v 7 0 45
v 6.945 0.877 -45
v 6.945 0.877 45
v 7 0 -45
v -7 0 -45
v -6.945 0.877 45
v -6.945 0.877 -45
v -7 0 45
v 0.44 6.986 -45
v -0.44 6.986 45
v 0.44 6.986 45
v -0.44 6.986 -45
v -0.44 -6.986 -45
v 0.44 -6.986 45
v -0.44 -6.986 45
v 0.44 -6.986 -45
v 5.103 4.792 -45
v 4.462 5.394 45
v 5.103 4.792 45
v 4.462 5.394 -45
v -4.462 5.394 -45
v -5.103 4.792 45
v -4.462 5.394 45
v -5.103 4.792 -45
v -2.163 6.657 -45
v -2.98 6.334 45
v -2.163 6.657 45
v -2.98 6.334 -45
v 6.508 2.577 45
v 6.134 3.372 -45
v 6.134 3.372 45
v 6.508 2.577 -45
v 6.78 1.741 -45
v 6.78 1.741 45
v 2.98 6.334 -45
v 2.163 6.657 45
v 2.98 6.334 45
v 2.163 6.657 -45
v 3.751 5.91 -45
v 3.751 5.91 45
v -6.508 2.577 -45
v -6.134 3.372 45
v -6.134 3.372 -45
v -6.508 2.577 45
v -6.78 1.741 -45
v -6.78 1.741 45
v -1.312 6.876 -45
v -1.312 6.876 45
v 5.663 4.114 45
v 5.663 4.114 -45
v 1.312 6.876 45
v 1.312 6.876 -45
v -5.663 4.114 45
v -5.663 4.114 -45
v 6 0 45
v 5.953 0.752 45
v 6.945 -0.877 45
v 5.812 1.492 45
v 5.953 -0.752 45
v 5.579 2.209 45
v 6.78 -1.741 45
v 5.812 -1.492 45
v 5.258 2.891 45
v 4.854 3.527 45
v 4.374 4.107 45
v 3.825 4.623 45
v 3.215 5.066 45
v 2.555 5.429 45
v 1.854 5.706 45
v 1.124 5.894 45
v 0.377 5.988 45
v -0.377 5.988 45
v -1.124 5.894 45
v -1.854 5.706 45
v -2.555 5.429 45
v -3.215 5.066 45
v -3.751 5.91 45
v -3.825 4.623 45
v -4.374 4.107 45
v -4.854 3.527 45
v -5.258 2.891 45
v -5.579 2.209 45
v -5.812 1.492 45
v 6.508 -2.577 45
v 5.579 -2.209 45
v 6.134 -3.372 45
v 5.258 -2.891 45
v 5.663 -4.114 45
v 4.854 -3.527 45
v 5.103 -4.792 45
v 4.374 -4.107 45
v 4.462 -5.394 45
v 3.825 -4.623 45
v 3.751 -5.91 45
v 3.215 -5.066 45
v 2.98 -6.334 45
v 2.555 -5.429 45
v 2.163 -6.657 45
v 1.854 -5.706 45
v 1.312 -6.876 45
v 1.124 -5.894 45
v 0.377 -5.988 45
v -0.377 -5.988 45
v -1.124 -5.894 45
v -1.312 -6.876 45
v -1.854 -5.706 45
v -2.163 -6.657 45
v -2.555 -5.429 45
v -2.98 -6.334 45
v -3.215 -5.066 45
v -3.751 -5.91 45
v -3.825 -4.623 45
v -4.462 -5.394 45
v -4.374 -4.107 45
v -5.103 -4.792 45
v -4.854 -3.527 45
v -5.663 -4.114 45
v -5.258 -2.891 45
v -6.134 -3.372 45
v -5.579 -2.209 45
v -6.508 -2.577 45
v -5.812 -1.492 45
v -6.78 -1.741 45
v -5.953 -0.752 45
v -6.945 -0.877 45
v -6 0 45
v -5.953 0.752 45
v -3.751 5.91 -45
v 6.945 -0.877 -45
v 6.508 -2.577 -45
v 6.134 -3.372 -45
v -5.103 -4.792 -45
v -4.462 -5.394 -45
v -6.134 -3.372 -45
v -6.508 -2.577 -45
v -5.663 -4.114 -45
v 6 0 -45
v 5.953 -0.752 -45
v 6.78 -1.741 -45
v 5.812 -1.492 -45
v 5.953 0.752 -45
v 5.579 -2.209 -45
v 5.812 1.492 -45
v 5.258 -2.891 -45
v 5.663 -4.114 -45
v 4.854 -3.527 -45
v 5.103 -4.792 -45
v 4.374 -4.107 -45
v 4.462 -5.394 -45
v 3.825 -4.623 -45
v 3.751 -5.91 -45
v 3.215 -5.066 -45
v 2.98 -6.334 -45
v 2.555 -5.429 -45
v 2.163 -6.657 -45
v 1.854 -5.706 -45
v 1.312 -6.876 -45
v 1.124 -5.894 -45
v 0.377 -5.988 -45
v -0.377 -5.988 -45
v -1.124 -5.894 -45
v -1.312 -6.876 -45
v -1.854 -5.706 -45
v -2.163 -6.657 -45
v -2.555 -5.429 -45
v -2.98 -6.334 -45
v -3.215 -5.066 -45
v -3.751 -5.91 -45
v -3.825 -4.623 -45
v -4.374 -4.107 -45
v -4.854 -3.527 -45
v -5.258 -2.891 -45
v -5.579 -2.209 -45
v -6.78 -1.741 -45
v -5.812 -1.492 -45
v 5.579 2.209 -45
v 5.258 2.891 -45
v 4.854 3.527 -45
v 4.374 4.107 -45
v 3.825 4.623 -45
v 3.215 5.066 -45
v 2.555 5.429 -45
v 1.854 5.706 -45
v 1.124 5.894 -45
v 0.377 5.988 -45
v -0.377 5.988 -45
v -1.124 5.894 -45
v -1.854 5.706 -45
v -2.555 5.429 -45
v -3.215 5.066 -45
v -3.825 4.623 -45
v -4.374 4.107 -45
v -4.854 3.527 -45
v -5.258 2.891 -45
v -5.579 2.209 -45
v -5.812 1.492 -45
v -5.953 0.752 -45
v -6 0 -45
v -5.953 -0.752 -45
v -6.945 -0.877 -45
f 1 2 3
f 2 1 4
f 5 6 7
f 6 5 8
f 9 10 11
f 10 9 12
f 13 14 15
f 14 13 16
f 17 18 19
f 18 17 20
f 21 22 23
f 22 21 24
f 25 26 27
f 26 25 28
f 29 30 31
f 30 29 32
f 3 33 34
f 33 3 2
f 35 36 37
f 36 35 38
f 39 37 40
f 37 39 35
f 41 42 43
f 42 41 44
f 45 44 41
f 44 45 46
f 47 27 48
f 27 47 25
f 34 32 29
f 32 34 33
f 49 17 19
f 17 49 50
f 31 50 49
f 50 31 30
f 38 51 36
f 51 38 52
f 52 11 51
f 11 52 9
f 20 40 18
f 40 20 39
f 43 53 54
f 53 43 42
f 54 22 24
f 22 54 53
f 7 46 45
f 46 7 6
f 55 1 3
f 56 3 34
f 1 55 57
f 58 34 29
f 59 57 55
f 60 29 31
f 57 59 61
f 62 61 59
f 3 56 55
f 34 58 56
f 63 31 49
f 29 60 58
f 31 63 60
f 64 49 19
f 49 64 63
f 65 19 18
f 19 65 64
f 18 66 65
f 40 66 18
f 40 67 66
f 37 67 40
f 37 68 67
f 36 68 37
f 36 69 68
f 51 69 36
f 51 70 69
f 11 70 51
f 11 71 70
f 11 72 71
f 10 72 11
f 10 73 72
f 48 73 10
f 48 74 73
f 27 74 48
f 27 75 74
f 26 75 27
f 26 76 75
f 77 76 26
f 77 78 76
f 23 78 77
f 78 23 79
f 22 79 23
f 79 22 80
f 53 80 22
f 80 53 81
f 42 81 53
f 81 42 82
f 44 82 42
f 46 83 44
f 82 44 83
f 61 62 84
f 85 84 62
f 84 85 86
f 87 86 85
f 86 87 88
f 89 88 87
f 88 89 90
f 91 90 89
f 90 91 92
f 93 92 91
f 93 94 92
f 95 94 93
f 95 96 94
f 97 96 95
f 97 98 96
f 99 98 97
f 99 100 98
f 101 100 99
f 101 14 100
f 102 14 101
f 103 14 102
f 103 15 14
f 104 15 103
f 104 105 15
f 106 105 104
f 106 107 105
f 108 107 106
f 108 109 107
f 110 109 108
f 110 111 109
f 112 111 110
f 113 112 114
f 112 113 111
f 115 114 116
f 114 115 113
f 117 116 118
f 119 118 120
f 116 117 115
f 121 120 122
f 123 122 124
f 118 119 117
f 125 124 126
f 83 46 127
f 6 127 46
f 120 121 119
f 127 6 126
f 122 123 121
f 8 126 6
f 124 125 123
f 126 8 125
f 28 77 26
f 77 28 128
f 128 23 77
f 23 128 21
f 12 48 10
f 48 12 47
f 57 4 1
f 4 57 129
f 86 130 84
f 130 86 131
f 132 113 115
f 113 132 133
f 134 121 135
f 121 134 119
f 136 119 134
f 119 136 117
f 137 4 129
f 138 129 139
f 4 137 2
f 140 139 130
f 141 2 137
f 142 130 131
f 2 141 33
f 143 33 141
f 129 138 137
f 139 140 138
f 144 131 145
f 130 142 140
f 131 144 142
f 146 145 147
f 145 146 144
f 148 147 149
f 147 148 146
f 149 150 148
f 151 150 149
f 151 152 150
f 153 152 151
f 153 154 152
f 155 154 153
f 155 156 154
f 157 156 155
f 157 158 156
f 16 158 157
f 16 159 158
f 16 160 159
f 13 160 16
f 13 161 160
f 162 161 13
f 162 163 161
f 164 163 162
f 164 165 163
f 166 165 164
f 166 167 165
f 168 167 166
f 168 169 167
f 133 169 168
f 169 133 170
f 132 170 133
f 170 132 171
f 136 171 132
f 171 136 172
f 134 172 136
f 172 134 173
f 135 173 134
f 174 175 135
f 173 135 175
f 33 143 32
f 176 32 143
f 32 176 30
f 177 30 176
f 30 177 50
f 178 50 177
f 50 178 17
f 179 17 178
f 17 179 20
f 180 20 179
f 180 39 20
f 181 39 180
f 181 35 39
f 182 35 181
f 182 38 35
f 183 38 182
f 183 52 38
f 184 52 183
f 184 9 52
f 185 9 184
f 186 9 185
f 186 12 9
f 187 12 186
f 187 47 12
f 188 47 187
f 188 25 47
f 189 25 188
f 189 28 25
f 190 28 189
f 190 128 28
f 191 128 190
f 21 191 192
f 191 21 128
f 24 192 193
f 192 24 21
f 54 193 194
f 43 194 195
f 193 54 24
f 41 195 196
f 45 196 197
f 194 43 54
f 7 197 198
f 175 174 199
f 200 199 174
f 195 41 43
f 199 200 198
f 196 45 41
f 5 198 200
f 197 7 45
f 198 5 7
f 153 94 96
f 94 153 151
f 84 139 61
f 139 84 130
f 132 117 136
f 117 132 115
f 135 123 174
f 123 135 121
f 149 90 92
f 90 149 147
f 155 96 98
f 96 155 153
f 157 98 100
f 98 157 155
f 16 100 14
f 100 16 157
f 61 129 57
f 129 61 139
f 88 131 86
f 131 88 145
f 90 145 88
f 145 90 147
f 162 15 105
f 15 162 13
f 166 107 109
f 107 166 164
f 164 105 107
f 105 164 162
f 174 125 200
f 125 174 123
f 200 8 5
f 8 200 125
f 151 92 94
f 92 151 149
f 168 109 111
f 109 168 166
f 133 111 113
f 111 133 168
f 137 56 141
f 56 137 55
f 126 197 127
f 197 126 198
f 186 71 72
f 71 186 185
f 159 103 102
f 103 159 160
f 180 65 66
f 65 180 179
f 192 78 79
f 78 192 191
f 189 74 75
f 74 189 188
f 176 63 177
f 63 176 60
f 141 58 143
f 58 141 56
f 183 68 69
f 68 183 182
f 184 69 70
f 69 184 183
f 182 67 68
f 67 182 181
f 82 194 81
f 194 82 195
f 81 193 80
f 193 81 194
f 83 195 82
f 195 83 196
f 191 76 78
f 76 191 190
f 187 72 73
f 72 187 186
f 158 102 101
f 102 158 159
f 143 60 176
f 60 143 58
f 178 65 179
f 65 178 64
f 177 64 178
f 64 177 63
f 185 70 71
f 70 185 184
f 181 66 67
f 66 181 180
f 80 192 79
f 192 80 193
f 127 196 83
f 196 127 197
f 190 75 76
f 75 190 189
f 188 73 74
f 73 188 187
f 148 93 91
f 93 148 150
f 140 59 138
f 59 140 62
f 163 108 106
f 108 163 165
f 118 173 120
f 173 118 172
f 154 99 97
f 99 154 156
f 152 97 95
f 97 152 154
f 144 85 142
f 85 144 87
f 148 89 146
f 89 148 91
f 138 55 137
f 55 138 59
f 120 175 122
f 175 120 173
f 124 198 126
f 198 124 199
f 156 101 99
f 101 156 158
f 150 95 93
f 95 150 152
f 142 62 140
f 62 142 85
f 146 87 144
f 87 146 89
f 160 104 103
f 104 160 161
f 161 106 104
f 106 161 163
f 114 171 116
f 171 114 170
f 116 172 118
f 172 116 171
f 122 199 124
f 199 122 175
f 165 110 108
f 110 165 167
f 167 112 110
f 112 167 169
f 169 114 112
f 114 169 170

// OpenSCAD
$fn = 50;


difference() {
	union() {
		translate(v = [0, 0, -45.0000000000]) {
			cylinder(h = 90, r = 7.0000000000);
		}
	}
	union() {
		translate(v = [0, 0, -100.0000000000]) {
			cylinder(h = 200, r = 6);
		}
	}
}
